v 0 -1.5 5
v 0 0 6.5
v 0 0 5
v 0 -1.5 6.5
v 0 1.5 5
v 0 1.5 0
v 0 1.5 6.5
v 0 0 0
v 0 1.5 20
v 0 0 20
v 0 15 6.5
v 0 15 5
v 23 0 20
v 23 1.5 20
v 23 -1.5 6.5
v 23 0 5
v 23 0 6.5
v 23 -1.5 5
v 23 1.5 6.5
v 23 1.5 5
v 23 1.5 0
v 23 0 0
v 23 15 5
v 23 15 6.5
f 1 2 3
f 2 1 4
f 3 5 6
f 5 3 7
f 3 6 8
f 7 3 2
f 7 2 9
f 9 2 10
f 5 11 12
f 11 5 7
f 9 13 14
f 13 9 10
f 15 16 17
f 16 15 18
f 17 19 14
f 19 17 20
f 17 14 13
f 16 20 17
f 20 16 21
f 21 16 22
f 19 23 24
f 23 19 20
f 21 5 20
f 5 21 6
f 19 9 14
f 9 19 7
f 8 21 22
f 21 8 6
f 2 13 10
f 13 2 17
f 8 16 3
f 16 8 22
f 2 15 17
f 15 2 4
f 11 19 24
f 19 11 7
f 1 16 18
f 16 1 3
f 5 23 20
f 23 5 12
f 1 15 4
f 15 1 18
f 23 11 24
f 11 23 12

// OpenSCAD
// file: rack_params.scad
// 推出模块共享参数 - 所有零件文件和装配预览文件通过 include 引用此文件
// 此文件仅放参数定义（变量赋值），不放任何 geometry 语句

// ---------- 底板参数 (引用自 sliding_track_base.scad) ----------
base_w   = 30;
base_l   = 90;
base_t   = 5;
groove_w = 26;
groove_d = 1.5;

// ---------- 齿条参数 ----------
modulus     = 1.0;                    // 齿轮模数
pitch       = PI * modulus;           // 齿距 p
addendum    = 1.0 * modulus;          // 齿顶高
dedendum    = 1.2 * modulus;          // 齿根高
tooth_thick = pitch / 2;              // 齿厚

rack_w     = 8;                       // 齿条宽 (X)
rack_thick = 3.5;                     // 齿条厚 (Z) - 仅含齿高部分（与齿轮啮合计算用）
rack_base_h = 5;                      // 齿条基体加厚高度（专门为底部粘贴预留），不含齿高
rack_len   = 140;                     // 齿条长 (Y) — 由原 70mm 改为 140mm
tooth_cnt  = floor(rack_len / pitch); // 齿条齿数

// ---------- 推头参数 ----------
pusher_w     = 23;                    // 推头宽 (< groove_w=26)
pusher_tab_t = 1.5;                   // 竖板厚 (< groove_d=1.5)
pusher_arm_t = 1.5;                   // 横板厚
blocker_h    = 20;                    // 竖板总高度（从齿条顶面起算）= 底板厚(5) + 药盒高(13.5) + 余量(1.5)
                                     //  作用：推头到达行程终点时高出底板 15mm 堵住上方药匣出药口

// ---------- 齿轮参数 ----------
gear_teeth   = 20;                    // 齿轮齿数
gear_r       = gear_teeth * modulus / 2;   // 分度圆半径
gear_outer_r = gear_r + addendum;          // 齿顶圆半径
gear_root_r  = gear_r - dedendum;          // 齿根圆半径
gear_w       = rack_w;                     // 齿轮厚度 (Z)
shaft_d      = 6.5;                         // 电机轴径（6.5mm 轴孔）
shaft_len    = 20;                         // 轴长

// ---------- 轴座参数 ----------
bearing_block_w = 12;
bearing_block_d = 10;
bearing_block_h = 8;
bearing_hole_d  = 6.7;                     // 6.5mm电机轴 + 0.2mm间隙
mount_hole_d    = 3.2;                     // M3 安装孔

// ---------- 装配坐标 ----------
rack_x   = (base_w - rack_w) / 2;         // 齿条X起点 (底板X中心)
rack_z   = -rack_thick;                   // 齿条Z底面 (底板Z=0下方)
rack_y0  = -20;                           // 齿条Y起点 (在底板Y=0外)

gear_cx = base_w / 2;                     // 齿轮X中心
gear_cy = base_l - 5;                     // 齿轮Y中心 (底板Y=90末端内侧)
gear_cz = rack_z + rack_thick / 2;        // 齿轮Z中心 (齿条厚度中线)

bearing_y   = gear_cy;                    // 轴座Y中心
mount_inset = 5;
eps         = 0.01;
// main file
// pusher_face.scad - L 形推头（独立可打印件，无悬垂）
// 坐标系：竖板左下角 (X=0, Y=0, Z=0) 在齿条基体底面
// 竖板 23×1.5×20mm 垂直向上（自支撑）
// 横板 23×15+1.5×1.5mm 水平（自支撑）
// 竖板底部有 1.5mm 凸出量，套在 stick_rack 的 T 型键上

include <rack_params.scad>

module upright_web() {
    // 竖直筋板：宽 X = pusher_w(23), 厚 Y = pusher_tab_t(1.5), 高 Z = blocker_h(20)
    color("OrangeRed")
    cube([pusher_w, pusher_tab_t, blocker_h]);
}

module tray() {
    // 水平托板：宽 X = pusher_w(23), 长 Y = 15 + pusher_tab_t(16.5), 厚 Z = pusher_arm_t(1.5)
    // 顶面 Z = base_t(5)，底面 Z = base_t - pusher_arm_t
    color("OrangeRed")
    translate([0, -pusher_tab_t, base_t])
        cube([pusher_w, pusher_tab_t + 15, pusher_arm_t]);
}

module pusher_face() {
    union() {
        upright_web();
        tray();
    }
}

pusher_face();
